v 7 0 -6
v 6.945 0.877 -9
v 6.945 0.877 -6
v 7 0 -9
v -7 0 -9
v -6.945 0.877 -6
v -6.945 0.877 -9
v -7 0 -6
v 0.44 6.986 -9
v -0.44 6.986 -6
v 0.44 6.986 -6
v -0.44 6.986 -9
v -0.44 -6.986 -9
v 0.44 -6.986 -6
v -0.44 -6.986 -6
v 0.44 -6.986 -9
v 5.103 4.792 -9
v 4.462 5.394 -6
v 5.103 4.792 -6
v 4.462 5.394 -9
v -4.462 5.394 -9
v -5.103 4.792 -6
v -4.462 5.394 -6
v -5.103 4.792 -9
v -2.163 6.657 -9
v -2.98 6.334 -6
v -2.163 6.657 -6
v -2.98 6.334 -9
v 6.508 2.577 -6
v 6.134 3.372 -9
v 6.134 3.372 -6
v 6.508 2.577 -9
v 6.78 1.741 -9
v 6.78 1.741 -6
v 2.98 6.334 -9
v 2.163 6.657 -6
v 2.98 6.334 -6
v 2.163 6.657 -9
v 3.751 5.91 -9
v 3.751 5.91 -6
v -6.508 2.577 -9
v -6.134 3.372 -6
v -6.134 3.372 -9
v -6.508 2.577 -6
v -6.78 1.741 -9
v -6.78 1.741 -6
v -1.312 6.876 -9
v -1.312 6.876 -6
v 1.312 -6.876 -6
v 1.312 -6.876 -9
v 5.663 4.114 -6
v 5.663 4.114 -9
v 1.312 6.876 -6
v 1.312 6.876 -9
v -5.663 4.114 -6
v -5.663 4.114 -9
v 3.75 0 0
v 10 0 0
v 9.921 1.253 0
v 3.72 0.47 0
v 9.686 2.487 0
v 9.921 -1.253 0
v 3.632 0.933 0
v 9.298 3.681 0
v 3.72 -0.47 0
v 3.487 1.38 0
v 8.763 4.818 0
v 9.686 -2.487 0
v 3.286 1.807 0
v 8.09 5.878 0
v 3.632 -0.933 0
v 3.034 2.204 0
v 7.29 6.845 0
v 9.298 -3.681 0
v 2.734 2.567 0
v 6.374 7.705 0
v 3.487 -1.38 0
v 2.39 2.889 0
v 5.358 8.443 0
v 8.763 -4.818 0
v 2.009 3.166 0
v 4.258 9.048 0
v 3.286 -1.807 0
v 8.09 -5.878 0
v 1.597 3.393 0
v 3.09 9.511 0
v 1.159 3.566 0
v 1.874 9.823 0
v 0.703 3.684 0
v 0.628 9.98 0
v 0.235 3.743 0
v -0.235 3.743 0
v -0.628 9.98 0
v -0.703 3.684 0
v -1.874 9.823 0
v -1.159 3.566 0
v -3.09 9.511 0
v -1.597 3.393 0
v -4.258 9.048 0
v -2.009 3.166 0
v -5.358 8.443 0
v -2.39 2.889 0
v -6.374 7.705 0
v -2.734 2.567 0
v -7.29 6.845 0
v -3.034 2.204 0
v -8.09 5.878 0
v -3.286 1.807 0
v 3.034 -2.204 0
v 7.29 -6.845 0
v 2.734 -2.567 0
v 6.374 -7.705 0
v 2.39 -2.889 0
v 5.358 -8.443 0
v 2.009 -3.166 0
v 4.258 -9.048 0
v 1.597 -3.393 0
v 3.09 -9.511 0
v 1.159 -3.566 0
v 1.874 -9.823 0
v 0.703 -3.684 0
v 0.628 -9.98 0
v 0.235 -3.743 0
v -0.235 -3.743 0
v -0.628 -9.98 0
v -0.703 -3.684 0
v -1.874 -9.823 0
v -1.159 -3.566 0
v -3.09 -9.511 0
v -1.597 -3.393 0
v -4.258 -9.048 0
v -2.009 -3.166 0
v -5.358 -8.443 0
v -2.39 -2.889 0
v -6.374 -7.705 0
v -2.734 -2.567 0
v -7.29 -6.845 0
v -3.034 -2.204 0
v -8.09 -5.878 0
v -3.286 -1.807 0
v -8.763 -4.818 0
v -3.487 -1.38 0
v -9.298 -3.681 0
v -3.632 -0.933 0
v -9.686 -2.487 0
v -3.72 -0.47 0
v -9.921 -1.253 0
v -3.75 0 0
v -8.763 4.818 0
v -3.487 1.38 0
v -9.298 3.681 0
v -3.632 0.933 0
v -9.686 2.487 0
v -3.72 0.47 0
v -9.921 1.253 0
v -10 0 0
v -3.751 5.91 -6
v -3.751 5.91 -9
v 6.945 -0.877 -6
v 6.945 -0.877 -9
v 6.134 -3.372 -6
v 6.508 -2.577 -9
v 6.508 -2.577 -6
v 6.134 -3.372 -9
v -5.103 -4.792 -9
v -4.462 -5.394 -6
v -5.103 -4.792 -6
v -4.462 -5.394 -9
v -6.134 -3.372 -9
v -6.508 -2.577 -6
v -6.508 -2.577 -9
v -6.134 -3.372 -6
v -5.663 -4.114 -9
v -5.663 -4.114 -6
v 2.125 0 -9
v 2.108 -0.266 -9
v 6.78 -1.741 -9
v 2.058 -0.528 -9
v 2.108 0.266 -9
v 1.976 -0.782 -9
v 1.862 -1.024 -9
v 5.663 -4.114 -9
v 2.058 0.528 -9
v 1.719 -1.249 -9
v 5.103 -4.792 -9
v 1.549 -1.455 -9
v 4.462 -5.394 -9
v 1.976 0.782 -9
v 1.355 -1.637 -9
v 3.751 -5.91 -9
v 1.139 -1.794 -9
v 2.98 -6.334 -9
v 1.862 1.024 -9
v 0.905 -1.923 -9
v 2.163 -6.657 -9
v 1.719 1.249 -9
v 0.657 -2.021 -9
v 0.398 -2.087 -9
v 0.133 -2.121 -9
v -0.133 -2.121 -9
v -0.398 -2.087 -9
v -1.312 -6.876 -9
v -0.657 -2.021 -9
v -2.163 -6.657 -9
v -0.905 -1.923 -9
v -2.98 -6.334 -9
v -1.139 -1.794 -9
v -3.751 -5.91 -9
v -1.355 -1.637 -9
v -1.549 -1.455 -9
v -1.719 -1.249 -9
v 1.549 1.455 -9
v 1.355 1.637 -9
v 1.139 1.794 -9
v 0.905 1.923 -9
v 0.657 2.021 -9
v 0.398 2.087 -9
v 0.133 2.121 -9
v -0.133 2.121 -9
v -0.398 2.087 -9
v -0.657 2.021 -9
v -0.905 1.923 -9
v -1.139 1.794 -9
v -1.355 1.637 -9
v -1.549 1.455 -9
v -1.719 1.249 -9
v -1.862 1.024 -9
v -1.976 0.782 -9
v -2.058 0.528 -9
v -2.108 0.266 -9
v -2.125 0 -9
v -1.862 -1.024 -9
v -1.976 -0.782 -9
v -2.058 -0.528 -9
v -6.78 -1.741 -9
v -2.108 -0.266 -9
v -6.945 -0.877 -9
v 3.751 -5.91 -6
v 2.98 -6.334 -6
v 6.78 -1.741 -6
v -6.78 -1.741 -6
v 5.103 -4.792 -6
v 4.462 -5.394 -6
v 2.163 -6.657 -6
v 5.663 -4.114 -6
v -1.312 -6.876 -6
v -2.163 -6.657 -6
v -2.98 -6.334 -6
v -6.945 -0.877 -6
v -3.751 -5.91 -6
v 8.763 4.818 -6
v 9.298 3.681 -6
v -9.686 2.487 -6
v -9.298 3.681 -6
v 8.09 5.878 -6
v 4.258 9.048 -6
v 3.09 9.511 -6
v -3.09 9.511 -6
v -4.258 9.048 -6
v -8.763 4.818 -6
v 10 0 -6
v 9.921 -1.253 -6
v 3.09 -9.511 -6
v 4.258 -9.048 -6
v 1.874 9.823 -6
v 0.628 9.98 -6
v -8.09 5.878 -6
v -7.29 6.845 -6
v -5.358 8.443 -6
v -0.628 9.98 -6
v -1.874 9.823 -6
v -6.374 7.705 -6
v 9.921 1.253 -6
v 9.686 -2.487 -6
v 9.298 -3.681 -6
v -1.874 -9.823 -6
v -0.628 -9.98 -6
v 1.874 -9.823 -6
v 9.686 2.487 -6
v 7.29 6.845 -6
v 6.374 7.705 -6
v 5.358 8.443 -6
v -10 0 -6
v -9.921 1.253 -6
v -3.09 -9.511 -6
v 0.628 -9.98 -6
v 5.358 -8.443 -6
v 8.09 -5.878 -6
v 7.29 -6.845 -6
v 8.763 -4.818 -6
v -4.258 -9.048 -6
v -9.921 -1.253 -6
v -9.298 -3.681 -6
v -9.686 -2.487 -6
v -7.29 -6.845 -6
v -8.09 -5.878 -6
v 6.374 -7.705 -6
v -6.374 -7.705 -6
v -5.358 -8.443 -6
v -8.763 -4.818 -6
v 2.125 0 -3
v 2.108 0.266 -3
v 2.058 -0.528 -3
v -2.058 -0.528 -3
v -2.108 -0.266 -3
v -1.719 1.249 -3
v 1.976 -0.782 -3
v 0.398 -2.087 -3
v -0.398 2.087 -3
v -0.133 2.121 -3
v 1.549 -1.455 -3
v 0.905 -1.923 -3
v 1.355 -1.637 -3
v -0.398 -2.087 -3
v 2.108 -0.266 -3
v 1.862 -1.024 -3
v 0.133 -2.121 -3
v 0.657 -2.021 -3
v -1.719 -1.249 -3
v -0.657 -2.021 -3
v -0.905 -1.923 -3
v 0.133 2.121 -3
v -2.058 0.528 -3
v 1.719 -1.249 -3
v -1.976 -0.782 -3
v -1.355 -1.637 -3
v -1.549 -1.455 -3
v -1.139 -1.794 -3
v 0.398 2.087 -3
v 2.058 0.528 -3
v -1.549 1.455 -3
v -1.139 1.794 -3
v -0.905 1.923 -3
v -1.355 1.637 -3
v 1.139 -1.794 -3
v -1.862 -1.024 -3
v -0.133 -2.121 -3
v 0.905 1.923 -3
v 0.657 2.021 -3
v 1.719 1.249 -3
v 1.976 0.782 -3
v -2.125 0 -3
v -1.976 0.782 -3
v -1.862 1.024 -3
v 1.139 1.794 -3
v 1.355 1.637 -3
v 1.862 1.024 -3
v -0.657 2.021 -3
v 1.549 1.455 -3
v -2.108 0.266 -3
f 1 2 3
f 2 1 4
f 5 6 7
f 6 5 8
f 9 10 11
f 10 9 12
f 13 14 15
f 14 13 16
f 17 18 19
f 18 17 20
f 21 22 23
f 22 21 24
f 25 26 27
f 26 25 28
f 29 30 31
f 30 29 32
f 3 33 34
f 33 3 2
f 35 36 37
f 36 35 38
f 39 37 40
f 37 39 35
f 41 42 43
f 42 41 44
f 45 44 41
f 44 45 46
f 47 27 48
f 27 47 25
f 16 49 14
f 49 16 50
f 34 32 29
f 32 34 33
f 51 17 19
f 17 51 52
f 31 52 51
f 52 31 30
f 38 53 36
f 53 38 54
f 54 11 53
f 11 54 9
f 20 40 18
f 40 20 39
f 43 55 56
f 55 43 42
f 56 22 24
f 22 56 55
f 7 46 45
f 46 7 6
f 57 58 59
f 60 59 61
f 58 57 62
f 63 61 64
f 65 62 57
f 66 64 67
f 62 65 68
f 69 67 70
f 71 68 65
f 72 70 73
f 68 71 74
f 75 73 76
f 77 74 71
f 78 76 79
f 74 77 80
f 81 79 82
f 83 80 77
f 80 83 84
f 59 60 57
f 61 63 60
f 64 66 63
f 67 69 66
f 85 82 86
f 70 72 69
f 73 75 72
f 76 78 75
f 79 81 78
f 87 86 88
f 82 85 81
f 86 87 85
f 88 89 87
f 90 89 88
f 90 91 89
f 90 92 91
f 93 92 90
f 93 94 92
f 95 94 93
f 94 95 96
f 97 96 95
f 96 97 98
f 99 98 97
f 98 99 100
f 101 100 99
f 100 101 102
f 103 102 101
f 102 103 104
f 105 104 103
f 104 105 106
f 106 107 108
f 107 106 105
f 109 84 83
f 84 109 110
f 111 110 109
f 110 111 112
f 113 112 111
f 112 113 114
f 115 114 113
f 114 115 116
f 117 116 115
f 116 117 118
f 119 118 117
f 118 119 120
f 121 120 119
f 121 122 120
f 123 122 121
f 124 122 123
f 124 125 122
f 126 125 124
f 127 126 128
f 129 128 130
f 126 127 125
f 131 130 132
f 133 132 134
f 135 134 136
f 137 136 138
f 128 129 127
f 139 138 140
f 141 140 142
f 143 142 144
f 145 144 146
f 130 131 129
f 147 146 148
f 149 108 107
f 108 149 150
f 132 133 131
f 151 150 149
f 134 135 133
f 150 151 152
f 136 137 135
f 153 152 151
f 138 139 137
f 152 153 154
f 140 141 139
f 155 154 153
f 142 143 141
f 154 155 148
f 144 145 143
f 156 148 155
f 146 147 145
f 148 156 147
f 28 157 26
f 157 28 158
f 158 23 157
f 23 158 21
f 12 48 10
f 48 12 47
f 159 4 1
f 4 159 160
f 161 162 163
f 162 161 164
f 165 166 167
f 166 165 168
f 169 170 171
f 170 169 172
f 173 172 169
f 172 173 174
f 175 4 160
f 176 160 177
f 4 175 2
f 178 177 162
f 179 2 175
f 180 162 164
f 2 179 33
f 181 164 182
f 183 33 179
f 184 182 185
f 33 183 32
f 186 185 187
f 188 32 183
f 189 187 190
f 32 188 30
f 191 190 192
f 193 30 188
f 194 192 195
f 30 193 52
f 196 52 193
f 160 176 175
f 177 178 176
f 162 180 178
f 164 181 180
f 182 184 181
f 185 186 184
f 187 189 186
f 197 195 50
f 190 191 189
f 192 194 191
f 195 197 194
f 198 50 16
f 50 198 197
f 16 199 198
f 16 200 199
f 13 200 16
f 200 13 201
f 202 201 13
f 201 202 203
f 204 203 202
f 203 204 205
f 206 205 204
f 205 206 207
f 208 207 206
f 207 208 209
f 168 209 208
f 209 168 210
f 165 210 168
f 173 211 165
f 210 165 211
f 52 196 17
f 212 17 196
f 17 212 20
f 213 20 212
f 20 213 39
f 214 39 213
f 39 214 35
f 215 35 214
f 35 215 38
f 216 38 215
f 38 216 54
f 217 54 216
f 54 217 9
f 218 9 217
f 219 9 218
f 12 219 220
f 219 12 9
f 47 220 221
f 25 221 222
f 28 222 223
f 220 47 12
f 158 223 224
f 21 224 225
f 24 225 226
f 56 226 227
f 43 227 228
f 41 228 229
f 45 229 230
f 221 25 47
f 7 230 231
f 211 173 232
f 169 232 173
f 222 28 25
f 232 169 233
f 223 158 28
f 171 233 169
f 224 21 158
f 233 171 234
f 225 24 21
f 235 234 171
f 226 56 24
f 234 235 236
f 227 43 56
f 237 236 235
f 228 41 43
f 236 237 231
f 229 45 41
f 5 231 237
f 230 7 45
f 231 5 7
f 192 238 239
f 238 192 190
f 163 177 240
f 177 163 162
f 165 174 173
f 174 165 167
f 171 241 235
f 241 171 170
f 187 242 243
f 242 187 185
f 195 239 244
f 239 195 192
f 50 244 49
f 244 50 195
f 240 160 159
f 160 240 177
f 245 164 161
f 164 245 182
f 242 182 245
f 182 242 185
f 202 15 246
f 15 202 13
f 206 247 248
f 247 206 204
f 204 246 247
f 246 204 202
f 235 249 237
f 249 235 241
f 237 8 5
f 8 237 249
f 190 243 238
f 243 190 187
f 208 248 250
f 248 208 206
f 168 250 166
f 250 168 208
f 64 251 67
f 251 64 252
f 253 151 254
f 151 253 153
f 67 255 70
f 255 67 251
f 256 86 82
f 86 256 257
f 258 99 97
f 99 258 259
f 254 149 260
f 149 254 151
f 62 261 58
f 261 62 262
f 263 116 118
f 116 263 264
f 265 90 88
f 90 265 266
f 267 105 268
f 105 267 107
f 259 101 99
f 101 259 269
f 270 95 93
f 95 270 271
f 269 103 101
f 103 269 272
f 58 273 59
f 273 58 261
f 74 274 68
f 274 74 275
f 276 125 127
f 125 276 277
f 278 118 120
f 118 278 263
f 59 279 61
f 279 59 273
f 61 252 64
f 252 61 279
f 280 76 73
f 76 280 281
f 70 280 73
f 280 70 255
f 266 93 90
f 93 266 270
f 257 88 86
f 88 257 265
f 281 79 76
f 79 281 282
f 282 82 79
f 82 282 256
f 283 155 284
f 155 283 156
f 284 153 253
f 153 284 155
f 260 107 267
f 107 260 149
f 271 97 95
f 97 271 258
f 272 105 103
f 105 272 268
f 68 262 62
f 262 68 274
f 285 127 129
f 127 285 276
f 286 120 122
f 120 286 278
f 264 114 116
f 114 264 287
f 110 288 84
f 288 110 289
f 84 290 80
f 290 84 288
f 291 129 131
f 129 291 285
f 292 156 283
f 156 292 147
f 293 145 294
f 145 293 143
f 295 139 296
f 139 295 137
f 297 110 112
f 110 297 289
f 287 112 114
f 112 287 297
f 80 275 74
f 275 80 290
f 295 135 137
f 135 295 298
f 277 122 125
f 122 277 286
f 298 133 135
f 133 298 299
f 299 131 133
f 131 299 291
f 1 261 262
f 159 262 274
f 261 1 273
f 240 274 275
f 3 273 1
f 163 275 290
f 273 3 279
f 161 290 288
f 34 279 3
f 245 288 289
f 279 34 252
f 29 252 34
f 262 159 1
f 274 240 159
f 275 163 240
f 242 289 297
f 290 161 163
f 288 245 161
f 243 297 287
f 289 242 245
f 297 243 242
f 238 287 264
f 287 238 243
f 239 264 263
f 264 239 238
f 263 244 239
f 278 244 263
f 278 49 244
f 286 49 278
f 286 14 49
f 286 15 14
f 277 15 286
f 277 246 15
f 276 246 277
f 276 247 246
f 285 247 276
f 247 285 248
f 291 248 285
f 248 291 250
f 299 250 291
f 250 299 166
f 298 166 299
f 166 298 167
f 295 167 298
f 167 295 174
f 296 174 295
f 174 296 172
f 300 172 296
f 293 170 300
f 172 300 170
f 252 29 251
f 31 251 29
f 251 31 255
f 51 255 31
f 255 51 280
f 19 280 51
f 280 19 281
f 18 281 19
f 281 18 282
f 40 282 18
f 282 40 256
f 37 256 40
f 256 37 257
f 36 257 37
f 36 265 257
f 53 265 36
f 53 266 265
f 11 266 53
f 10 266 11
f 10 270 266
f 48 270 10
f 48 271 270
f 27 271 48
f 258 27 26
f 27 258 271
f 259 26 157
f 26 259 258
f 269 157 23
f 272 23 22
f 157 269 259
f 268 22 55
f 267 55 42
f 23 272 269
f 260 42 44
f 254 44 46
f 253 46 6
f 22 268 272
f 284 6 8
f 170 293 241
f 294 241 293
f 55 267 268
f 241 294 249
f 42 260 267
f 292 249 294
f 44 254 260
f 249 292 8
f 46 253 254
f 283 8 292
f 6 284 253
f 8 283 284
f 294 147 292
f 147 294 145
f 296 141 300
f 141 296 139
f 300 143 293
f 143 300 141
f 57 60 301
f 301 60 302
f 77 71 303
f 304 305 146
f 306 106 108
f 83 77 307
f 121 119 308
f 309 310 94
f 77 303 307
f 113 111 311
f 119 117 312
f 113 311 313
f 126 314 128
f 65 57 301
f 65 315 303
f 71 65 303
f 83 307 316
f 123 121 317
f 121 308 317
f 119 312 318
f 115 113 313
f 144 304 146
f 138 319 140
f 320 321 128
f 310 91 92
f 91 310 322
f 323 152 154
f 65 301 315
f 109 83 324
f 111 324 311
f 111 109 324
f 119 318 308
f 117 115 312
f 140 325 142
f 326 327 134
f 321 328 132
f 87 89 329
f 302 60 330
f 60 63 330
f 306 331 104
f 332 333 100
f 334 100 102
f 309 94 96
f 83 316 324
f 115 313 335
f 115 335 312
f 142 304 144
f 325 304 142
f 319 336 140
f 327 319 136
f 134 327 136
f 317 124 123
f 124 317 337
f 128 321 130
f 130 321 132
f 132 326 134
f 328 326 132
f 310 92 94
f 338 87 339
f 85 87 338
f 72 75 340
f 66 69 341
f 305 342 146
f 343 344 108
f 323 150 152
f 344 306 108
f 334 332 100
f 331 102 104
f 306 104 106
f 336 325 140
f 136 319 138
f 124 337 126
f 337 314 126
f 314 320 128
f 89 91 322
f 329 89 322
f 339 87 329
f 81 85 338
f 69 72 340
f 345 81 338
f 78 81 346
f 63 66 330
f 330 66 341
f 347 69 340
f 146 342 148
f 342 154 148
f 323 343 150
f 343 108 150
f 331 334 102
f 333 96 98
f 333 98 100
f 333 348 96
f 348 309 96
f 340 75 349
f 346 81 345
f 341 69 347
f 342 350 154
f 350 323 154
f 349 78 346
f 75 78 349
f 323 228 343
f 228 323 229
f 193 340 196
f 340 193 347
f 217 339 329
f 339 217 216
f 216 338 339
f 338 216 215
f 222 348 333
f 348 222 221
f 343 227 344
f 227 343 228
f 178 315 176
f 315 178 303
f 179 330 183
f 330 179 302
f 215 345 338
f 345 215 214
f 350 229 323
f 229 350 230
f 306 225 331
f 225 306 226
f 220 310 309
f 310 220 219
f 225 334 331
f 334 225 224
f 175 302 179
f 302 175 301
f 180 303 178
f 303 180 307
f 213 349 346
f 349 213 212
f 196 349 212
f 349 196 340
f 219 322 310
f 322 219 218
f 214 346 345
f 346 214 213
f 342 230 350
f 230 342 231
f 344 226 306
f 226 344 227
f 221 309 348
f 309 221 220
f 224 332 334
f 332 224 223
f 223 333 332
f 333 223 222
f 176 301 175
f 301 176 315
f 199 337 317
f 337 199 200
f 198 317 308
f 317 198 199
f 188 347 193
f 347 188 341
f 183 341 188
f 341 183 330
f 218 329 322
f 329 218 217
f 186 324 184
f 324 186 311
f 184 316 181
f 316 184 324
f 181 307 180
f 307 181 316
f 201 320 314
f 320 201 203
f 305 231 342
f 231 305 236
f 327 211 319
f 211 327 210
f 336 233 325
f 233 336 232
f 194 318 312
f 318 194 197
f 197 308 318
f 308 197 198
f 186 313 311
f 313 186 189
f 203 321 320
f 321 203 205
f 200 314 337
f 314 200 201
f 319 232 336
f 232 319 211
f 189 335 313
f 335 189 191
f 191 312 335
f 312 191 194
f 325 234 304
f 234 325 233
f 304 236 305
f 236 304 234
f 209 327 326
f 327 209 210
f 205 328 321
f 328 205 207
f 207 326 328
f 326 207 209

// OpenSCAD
$fn = 50;


difference() {
	union() {
		translate(v = [0, 0, -9.0000000000]) {
			cylinder(h = 9, r = 7.0000000000);
		}
		translate(v = [0, 0, -6.0000000000]) {
			cylinder(h = 6, r = 10.0000000000);
		}
	}
	union() {
		translate(v = [0, 0, 0]) {
			rotate(a = [0, 0, 0]) {
				difference() {
					union() {
						#translate(v = [0, 0, -9.0000000000]) {
							cylinder(h = 9, r = 2.0000000000);
						}
						#translate(v = [0, 0, -3]) {
							cylinder(h = 3, r1 = 2.1250000000, r2 = 3.7500000000);
						}
						#translate(v = [0, 0, -9.0000000000]) {
							cylinder(h = 9, r = 2.1250000000);
						}
						#translate(v = [0, 0, -9.0000000000]) {
							cylinder(h = 9, r = 2.0000000000);
						}
					}
					union();
				}
			}
		}
	}
}
